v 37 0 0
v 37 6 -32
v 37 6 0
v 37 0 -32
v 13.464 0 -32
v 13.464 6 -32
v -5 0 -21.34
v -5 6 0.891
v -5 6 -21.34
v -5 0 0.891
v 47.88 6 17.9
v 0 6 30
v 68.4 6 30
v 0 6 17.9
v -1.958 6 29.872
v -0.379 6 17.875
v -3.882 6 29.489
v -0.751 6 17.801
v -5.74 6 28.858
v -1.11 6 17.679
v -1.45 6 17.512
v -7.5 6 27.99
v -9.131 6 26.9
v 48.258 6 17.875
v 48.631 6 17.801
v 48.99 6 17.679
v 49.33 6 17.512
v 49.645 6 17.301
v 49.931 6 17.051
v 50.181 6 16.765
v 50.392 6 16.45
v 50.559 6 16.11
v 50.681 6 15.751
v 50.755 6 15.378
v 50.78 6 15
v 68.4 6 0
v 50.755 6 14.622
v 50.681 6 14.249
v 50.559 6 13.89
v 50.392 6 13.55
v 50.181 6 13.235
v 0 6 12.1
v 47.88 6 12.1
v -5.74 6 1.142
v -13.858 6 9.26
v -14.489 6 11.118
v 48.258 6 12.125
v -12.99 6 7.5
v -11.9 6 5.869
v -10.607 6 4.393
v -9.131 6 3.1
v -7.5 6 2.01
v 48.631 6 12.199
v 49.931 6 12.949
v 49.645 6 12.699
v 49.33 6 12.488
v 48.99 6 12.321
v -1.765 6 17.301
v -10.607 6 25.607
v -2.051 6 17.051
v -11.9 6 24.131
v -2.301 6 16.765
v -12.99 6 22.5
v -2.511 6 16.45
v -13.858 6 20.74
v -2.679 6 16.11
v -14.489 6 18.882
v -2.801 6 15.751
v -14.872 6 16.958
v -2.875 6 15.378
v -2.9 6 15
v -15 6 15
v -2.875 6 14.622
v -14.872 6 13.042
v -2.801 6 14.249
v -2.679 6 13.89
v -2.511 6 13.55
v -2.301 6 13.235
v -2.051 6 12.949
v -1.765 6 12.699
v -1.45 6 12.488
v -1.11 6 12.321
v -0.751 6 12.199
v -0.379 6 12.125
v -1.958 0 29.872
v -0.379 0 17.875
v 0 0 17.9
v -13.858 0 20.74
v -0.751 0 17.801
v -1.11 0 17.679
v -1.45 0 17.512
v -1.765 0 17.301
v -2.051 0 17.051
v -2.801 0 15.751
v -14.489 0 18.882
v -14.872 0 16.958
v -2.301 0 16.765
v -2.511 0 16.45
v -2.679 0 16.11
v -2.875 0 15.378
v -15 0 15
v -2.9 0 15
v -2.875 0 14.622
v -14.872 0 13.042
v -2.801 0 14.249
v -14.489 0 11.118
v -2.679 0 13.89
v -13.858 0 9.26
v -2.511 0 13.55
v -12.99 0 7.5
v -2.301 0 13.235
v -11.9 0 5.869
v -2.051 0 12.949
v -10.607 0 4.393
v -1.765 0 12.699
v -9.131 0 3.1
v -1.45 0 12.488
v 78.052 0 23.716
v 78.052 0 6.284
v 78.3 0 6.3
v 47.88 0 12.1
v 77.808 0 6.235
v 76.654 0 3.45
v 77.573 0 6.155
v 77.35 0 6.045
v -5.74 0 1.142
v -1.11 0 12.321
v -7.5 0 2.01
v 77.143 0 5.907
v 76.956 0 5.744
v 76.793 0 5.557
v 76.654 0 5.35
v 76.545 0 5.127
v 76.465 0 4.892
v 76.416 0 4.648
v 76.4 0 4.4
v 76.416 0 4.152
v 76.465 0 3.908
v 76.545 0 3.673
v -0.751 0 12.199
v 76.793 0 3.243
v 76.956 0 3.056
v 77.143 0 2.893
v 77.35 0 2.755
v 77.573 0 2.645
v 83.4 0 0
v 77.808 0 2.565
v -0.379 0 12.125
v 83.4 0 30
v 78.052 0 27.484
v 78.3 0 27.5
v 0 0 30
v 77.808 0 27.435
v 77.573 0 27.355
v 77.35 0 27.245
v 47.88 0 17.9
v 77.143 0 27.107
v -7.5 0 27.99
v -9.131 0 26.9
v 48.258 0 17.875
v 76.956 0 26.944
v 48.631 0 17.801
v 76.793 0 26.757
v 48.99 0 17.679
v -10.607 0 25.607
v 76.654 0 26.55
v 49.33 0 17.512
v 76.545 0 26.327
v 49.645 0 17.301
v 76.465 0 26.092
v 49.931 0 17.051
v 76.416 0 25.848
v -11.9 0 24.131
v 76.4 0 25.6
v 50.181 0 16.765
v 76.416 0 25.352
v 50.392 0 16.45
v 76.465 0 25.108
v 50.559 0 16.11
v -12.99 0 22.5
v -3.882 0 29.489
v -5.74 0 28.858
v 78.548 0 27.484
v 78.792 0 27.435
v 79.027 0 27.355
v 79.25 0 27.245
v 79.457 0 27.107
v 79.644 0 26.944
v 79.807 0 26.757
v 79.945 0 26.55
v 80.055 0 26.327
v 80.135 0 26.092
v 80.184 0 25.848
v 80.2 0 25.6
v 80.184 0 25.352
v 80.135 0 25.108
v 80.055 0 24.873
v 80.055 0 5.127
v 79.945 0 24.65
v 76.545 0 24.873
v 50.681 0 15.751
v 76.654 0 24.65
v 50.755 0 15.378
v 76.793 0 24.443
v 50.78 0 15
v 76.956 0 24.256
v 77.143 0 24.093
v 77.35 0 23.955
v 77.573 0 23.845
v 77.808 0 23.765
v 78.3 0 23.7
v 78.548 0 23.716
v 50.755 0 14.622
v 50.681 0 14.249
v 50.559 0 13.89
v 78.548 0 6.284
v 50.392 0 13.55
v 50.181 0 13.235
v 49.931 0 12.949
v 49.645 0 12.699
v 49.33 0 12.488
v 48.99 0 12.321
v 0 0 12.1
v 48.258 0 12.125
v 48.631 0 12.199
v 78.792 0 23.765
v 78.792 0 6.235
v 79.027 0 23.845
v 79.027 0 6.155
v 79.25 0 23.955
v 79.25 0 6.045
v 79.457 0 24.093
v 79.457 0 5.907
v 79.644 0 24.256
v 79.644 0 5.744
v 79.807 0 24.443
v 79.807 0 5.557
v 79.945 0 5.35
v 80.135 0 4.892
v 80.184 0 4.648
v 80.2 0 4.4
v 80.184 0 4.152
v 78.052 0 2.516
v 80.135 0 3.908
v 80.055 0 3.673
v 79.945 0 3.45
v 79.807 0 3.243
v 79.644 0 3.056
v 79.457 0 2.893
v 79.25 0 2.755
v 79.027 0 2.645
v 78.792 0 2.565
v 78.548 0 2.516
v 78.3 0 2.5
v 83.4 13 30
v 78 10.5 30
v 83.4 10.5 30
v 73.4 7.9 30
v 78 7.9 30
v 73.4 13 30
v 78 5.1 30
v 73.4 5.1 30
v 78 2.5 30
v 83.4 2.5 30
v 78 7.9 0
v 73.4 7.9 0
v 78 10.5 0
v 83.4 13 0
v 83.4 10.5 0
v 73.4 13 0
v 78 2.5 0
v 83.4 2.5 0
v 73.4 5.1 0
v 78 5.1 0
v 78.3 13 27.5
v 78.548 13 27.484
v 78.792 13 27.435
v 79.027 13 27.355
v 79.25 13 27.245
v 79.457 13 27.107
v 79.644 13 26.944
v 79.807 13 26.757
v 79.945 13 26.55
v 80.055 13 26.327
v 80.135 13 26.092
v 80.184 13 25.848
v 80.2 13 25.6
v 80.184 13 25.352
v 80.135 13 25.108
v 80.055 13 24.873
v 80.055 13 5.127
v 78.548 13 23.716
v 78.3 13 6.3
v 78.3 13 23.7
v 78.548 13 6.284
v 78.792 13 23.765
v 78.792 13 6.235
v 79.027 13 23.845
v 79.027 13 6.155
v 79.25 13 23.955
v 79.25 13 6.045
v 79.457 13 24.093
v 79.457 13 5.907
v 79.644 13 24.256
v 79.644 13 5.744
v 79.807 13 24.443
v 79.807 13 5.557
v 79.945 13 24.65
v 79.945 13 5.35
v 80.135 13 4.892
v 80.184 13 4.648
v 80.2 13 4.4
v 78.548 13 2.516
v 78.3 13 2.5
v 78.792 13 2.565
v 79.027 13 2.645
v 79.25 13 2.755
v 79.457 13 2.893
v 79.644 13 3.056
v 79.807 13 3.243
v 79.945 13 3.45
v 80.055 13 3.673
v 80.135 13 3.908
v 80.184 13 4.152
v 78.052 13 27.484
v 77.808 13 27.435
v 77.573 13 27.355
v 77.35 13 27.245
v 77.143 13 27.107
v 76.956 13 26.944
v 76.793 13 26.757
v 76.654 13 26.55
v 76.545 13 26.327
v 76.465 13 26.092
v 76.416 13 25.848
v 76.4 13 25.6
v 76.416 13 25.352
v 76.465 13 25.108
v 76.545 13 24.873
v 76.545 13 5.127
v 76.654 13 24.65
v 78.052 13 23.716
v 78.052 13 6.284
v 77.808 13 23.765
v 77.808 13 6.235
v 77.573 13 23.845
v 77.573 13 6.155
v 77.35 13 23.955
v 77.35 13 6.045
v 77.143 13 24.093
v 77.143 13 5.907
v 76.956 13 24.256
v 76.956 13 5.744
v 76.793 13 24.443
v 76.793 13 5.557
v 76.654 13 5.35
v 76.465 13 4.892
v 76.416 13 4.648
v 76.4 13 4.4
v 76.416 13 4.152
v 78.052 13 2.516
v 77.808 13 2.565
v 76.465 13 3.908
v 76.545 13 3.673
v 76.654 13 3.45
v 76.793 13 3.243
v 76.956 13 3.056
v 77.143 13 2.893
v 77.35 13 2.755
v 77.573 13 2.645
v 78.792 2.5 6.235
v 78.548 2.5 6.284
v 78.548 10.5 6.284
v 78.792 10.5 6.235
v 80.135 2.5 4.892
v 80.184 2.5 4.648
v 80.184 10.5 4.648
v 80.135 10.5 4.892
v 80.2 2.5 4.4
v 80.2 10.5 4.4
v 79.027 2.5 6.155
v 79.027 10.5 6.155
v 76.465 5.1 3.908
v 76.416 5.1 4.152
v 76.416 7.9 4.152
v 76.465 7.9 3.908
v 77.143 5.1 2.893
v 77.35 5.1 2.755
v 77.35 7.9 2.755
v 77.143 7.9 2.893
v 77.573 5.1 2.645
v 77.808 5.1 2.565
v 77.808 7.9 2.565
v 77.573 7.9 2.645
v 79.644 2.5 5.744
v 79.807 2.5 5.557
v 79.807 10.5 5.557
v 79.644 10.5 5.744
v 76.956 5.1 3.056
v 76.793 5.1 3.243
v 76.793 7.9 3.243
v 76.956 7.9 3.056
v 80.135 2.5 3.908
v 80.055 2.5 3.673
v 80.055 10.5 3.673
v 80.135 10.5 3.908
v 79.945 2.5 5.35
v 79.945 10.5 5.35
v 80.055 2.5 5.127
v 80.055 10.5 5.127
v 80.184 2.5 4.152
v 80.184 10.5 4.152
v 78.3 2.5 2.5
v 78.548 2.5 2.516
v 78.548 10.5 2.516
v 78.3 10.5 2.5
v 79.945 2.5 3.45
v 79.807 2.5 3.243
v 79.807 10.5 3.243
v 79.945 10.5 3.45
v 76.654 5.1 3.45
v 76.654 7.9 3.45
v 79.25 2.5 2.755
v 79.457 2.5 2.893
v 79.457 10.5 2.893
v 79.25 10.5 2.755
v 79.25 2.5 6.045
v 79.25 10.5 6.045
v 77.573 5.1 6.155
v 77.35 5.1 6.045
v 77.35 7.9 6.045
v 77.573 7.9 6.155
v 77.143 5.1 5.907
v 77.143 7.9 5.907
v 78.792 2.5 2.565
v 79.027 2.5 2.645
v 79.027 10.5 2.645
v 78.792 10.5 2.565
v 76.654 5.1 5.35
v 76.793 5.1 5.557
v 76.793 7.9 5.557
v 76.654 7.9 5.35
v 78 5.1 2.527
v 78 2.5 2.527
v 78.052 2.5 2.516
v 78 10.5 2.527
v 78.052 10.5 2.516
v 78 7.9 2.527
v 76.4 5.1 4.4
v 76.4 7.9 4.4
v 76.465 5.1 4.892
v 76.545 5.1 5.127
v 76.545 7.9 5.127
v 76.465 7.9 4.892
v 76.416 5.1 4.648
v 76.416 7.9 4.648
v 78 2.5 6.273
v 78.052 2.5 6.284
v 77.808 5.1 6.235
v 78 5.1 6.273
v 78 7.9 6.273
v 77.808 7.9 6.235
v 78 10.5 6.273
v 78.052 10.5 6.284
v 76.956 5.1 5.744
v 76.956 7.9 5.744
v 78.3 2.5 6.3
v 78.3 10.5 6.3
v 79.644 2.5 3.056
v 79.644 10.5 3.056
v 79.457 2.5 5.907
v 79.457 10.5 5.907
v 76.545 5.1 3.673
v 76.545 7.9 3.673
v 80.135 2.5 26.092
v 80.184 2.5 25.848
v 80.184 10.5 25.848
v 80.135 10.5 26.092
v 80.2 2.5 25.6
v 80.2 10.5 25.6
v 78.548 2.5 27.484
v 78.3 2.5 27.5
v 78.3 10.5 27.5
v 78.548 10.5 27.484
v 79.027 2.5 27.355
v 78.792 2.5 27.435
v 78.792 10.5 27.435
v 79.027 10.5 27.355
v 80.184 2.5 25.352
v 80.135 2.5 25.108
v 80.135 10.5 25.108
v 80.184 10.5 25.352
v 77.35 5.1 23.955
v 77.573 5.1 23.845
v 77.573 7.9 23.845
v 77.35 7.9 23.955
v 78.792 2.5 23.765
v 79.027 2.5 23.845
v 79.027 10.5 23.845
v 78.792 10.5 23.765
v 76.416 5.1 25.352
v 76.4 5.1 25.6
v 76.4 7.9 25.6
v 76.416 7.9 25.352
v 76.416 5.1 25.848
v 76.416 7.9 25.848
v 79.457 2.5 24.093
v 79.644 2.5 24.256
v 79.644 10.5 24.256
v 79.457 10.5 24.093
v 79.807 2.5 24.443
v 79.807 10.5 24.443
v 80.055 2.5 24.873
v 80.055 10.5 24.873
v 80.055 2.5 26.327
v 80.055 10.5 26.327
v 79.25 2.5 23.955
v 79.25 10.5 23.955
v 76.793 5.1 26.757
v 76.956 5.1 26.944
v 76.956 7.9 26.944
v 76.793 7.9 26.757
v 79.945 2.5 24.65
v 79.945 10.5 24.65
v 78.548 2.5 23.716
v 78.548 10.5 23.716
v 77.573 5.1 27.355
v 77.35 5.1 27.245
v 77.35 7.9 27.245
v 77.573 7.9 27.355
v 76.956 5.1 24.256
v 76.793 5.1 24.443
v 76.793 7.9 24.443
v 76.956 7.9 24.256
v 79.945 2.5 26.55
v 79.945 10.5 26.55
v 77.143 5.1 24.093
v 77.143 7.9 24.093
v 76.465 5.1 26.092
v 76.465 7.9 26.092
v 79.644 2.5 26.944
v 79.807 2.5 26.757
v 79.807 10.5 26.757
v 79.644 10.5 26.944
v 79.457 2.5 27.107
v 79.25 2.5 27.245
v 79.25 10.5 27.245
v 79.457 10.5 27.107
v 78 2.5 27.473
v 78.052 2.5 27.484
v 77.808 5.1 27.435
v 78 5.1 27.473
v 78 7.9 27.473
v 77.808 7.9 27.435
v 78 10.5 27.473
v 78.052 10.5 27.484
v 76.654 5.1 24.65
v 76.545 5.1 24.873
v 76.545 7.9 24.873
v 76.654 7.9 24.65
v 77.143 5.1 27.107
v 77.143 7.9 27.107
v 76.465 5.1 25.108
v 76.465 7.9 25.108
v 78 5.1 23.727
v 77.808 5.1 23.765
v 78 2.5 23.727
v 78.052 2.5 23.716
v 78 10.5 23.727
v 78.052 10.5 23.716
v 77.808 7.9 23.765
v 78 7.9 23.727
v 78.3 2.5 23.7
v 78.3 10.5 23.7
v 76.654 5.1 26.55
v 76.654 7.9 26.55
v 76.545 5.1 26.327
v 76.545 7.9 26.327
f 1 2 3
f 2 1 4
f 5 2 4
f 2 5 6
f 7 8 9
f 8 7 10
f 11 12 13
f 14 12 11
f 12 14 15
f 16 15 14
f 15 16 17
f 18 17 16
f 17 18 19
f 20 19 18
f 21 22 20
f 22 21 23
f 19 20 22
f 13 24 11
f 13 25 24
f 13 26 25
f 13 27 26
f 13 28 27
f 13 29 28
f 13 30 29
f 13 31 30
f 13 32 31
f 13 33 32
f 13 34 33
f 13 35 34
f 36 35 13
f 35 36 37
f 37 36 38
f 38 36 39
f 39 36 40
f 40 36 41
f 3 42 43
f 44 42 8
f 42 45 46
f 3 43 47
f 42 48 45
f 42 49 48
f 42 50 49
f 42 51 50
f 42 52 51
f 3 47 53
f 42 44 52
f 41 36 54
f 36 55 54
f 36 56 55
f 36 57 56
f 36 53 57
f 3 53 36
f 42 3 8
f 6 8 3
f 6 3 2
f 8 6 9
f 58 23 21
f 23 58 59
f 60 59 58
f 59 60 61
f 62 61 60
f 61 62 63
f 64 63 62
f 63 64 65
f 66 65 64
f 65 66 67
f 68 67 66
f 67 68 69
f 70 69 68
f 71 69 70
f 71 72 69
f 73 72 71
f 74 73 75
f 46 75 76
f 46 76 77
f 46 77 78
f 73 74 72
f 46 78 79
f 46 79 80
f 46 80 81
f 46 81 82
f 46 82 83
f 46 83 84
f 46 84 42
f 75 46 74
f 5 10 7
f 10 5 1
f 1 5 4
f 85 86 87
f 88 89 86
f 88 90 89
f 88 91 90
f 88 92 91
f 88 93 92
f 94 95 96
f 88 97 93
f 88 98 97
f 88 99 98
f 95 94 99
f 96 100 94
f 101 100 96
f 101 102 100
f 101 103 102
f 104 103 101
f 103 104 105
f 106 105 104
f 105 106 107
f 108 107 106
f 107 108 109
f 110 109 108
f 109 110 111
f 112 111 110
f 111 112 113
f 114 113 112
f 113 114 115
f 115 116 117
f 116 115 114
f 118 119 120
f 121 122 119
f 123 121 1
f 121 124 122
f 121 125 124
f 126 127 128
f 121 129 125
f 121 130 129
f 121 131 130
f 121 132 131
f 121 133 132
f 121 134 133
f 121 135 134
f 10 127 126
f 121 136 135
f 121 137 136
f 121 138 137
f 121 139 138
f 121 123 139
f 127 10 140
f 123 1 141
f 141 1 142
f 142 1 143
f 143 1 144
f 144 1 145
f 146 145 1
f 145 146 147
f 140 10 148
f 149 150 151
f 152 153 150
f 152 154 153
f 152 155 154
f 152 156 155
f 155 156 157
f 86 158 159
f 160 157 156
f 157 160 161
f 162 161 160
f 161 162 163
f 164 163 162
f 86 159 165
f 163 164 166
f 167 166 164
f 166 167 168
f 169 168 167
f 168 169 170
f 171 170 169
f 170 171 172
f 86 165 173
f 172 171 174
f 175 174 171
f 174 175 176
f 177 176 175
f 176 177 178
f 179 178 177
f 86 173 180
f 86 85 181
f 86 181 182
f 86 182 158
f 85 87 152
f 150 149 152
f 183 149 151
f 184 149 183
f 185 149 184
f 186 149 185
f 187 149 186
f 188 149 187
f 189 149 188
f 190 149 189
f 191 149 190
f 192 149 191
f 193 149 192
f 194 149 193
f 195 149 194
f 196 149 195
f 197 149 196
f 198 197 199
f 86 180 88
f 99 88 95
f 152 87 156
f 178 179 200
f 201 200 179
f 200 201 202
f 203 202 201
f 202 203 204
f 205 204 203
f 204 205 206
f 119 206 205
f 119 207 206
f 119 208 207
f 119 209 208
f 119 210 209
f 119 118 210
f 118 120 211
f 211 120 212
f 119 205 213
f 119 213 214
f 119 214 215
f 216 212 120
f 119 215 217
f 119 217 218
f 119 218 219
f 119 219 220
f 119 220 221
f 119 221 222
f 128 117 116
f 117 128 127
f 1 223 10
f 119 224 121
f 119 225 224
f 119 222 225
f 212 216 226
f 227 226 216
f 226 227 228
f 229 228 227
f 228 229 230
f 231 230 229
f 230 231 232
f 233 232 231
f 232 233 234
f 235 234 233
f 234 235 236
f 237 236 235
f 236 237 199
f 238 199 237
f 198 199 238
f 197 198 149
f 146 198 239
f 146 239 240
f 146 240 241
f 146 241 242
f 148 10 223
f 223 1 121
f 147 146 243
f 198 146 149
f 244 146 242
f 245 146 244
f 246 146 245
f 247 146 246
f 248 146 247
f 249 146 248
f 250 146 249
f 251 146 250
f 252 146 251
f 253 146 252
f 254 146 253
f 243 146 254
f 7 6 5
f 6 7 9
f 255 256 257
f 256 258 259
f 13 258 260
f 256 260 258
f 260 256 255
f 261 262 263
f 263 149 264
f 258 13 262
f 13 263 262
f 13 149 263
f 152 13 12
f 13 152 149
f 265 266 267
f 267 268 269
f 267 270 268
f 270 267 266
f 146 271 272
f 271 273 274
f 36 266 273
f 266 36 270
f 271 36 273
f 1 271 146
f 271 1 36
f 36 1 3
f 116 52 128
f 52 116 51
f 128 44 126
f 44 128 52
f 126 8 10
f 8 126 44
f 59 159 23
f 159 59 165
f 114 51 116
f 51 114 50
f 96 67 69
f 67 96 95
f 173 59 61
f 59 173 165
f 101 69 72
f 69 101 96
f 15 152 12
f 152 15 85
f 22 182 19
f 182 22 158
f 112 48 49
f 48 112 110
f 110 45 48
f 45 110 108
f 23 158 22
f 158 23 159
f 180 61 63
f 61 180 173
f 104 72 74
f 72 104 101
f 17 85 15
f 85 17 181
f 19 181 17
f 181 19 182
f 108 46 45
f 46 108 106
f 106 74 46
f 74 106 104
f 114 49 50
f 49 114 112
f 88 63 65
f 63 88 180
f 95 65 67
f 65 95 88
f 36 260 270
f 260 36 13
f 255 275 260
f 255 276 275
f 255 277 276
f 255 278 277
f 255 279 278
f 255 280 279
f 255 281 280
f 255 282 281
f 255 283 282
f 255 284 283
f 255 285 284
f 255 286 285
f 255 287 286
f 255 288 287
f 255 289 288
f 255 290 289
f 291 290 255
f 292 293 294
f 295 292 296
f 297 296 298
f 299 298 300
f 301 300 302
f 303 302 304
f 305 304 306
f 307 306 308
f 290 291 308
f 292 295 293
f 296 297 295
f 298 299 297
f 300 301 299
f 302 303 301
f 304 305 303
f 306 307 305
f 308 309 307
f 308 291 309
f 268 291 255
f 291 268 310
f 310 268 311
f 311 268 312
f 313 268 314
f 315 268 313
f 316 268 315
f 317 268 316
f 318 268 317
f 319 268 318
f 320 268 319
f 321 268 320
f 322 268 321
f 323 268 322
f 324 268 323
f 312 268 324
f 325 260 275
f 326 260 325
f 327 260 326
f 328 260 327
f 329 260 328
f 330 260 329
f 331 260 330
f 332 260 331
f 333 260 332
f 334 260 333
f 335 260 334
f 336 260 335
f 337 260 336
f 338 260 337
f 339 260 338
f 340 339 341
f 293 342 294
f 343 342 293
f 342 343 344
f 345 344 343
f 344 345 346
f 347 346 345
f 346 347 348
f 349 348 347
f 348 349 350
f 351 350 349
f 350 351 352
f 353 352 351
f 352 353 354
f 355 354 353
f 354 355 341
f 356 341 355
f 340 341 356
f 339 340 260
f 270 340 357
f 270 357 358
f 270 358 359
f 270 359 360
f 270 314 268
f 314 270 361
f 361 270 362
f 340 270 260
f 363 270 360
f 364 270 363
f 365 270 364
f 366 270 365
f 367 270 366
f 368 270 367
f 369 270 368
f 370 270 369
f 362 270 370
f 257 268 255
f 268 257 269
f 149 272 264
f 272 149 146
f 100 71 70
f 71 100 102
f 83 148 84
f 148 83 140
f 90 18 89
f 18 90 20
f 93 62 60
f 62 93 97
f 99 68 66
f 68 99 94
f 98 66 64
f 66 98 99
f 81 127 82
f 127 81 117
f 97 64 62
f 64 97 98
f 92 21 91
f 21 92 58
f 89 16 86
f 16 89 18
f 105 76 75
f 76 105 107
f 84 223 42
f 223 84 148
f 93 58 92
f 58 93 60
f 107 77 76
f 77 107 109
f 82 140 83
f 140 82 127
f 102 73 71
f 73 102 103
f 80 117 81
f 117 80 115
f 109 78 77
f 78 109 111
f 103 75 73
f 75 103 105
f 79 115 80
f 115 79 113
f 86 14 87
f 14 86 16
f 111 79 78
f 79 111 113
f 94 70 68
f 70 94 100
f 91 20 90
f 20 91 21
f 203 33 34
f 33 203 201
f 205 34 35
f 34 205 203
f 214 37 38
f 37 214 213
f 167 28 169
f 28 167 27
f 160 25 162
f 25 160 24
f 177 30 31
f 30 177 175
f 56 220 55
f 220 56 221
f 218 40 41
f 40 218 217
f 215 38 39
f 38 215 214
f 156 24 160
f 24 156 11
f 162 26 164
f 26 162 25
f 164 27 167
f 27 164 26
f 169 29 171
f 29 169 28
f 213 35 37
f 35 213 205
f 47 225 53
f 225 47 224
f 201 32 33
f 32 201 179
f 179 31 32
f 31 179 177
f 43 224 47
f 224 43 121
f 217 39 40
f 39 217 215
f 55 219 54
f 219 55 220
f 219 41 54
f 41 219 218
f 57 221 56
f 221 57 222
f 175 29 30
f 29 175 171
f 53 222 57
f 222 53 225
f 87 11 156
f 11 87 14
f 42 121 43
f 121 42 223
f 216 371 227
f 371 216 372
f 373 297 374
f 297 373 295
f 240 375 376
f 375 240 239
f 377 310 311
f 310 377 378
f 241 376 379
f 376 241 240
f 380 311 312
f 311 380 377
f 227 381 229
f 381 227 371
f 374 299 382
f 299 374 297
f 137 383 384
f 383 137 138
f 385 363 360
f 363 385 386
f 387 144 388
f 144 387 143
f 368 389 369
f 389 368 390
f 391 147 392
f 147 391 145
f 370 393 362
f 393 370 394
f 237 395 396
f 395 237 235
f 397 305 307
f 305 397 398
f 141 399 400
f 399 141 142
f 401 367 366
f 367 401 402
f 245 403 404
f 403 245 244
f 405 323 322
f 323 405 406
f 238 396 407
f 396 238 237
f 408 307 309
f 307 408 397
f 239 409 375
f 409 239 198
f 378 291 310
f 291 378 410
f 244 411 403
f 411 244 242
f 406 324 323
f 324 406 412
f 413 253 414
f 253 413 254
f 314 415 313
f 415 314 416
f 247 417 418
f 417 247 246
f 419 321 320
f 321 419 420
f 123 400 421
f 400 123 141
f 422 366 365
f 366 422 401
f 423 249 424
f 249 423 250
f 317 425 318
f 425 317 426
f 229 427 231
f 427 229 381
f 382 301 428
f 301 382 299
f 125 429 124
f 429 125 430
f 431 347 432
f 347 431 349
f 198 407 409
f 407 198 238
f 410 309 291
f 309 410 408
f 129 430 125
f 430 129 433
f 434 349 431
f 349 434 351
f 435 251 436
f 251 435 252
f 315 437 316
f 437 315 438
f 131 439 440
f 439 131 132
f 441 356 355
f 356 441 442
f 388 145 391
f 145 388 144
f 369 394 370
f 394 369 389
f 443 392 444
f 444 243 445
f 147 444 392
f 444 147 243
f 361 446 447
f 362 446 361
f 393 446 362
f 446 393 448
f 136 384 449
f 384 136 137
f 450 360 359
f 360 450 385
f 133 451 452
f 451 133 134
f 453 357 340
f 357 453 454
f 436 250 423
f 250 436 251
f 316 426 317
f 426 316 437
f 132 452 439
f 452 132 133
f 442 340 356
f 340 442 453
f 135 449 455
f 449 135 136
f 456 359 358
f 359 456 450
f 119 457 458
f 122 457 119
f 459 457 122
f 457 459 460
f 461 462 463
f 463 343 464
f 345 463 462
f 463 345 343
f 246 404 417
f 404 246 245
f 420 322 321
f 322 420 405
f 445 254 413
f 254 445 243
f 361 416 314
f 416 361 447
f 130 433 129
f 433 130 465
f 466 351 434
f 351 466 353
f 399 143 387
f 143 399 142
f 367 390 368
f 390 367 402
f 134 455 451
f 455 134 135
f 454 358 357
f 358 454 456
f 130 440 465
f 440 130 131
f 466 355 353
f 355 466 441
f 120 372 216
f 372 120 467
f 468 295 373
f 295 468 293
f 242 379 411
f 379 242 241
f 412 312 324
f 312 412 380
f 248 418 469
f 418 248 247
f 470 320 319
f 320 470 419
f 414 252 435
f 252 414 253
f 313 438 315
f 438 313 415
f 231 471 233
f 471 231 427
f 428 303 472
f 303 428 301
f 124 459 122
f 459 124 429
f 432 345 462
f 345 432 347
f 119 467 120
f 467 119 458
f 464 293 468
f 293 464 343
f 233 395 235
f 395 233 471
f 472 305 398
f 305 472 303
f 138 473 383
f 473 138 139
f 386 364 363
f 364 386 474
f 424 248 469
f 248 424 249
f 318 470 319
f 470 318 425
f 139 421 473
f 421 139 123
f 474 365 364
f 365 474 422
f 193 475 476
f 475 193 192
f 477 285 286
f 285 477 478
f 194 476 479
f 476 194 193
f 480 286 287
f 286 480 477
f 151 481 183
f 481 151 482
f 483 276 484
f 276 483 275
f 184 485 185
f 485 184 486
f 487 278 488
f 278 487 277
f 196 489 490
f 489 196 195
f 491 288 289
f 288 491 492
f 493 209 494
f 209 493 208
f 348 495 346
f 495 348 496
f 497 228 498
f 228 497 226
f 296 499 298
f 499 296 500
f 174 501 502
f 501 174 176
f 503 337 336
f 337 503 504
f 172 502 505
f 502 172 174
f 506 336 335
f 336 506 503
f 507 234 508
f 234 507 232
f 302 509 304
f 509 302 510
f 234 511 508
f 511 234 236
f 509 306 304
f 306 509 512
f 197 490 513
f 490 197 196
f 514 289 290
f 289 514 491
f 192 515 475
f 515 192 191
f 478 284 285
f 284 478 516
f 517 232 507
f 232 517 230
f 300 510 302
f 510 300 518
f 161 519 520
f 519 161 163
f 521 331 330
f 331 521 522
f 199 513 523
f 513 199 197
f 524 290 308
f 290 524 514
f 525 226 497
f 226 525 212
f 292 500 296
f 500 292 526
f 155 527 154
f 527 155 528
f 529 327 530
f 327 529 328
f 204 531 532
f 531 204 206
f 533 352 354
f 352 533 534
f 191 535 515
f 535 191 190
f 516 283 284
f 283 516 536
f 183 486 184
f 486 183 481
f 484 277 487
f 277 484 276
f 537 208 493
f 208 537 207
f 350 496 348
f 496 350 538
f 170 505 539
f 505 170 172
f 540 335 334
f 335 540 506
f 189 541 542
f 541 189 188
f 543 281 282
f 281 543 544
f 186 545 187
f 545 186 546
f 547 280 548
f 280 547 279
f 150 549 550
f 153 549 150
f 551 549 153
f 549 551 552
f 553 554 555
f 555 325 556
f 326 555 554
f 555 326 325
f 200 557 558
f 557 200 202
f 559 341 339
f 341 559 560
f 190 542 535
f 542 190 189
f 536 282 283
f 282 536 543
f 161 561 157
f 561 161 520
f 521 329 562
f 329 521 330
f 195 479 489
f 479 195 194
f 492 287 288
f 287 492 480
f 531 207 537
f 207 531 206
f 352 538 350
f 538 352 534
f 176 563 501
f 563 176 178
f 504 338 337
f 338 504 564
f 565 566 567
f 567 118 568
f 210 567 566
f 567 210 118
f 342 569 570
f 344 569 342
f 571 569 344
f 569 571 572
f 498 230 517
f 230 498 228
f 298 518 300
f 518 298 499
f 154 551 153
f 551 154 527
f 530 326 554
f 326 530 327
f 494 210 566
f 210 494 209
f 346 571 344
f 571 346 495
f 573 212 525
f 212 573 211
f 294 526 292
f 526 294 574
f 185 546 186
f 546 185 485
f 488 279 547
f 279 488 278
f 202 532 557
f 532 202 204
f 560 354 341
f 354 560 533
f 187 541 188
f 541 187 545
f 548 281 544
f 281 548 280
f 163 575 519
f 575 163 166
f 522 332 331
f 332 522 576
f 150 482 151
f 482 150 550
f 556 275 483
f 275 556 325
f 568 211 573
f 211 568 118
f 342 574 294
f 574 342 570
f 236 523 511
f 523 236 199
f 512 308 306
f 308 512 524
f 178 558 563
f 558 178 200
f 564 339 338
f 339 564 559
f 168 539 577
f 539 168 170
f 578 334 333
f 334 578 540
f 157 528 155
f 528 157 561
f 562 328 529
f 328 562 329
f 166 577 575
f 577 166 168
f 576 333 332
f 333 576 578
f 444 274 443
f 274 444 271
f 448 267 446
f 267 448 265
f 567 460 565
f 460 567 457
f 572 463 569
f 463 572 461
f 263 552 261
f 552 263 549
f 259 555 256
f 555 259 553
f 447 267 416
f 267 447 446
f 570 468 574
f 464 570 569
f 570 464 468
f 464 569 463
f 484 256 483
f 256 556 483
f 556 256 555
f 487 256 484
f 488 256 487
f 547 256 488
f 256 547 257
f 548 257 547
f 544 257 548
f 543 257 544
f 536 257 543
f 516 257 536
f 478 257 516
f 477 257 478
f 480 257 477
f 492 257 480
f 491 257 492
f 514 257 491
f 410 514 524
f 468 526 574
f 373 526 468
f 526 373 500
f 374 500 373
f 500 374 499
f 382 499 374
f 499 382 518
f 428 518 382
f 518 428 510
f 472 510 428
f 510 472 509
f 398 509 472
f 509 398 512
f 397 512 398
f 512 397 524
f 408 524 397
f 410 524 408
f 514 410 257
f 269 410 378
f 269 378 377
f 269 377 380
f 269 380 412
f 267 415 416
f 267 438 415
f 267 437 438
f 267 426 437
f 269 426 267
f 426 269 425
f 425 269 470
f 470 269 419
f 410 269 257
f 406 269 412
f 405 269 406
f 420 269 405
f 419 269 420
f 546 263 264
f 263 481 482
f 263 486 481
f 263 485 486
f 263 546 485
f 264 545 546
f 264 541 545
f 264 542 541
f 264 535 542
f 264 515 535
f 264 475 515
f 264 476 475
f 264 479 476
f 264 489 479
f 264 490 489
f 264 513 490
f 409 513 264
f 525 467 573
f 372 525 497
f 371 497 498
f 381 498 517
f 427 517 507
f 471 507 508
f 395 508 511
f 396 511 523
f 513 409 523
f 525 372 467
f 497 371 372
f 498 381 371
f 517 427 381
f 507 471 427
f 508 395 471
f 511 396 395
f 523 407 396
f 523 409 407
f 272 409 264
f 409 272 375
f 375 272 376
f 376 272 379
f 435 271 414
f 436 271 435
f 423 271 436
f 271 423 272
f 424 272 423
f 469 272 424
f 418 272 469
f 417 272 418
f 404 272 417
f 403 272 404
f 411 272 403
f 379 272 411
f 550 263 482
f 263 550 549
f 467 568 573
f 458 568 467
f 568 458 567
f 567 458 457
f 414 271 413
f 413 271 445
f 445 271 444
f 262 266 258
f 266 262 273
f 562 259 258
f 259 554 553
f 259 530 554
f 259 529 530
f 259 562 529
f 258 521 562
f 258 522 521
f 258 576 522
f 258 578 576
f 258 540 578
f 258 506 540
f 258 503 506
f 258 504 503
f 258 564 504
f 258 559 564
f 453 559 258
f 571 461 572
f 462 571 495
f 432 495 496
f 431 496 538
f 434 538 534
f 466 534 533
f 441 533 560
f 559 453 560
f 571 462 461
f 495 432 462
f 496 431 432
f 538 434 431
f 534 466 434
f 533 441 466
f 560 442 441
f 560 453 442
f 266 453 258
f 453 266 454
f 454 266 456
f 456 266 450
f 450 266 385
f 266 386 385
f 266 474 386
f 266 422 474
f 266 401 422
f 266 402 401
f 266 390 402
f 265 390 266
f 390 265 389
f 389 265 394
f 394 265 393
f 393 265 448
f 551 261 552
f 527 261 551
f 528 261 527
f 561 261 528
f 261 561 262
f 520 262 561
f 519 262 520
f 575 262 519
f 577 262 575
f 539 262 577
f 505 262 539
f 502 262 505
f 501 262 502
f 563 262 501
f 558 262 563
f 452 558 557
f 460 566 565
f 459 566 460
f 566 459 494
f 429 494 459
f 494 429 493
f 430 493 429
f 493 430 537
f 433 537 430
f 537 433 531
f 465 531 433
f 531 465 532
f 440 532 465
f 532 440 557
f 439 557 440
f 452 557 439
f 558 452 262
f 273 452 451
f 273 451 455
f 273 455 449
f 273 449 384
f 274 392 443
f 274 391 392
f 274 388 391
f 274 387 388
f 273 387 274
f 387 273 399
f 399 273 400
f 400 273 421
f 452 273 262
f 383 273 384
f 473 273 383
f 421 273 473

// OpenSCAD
// All dimensions are in millimeters

$fn = 48;
printgap = 0.4; // filament printing offset

// Parameters here
weld_conn_height = 15;
weld_con_diam = 43;

thick = 6;
height = 30;
length = 90*0.76;
r_hole = (5/2) + printgap; // screw size for distance adjustment slot

loop_connect_thick = 13;
wedge_len = 5;
loop_connect_len = 10;
connect_gap = 2.1+printgap+0.3; // gap between HMD steel loops
hmd_wedge = [[length, 0], [length+wedge_len, 0], [length+wedge_len+1, 0], [length+wedge_len+1, loop_connect_thick], [length+wedge_len, loop_connect_thick], [length, thick]];

screwholes = (3/2)+printgap; // screw size for connection through steel loops on HMD

looprod_diam = (2/2); // thickness of steel loop rods
screw_edgespacing = 5; // 5mm from edge closest to loop
looprod_inside_gap = 4; // for placing screw holes centered

endwiden = looprod_diam+looprod_inside_gap+printgap;

module adjustmentbar(){
	cube([length,thick,height]);
		translate([0,(thick/2),height/2]){
			rotate(90,[1,0,0]){
				cylinder(thick, height/2, height/2,true); // height, bottom radius, top r
			}
		}
}
module extruded_polywedge(){
	linear_extrude(height=height, center=false, convexity=1){
		polygon(points=hmd_wedge, convexity=1);
	}
}
// slot for HMD distance adjustment
module adjust_slot(length, maxdist){
	translate([0,thick/2,height/2]){
		rotate(90,[1,0,0]){
			cylinder(thick*20, r_hole, r_hole, true);
		}
	}
	translate([maxdist*length,thick/2,height/2]){
		rotate(90,[1,0,0]){
			cylinder(thick*20, r_hole, r_hole, true);
		}
	}
	translate([0,-thick/2,(height/2)-r_hole]){
		cube([maxdist*length, thick*2, r_hole*2]);
	}
}
module hmd_fork_connect(){
	translate([length+wedge_len, 0, 0]){
		cube([loop_connect_len, loop_connect_thick, height]); // length of wedge end mount
	}
}
module screw_holes(screw_diam, total_height){
	rotate(90,[1,0,0]){
		cylinder(total_height+10, screw_diam, screw_diam, true);
	}
}
module screw_array(){
	translate([(length+wedge_len+screwholes+looprod_diam+(looprod_inside_gap/2)), loop_connect_thick/2, screwholes+(screw_edgespacing/2)]){
		screw_holes(screw_diam=screwholes, total_height=loop_connect_thick);
		translate([0,0,height-((screwholes*2)+screw_edgespacing)]){
			screw_holes(screw_diam=screwholes, total_height=loop_connect_thick);
		}
	}
}
module weldmount_bracket(){
	translate([0,(thick/2)-1.4,height/2]){
		rotate(90,[1,0,0]){
			cylinder(weld_conn_height, weld_con_diam, weld_con_diam, true);
		}
	}
}
module endjointgap(){
	translate([(length+wedge_len+loop_connect_len-(endwiden)), (loop_connect_thick/2)+(-8/2), -5]){
		cube([endwiden+10, 8, height+10]);
	}
	translate([length+wedge_len, (loop_connect_thick/2)+(-connect_gap/2), -5/2]){
		cube([loop_connect_len+5, connect_gap, height+5]); // 4mm gap in loop, loop rod diameter 2mm
	}
}

// not in use
angledmount_len = 40 + height/2;
minkow_r = 3;

module koss_slider(){
	rotate(-30,[0,1,0]){ //-30
		translate([-angledmount_len,minkow_r/2,0]){
			minkowski(){
				rotate(90,[1,0,0]){
					cylinder(r=minkow_r,h=thick/2, center=true);
				}
				cube([angledmount_len, thick - minkow_r, height - minkow_r]);
			}
		}
	}
}

//headphone support wedge
supportwedge = [[0,0], [0, thick], [20, thick]];

// in use thus far
module headphonemount(){	
	difference(){
		difference(){
			translate([-height+25, 0,-32]){
				cube([height+20-5 - minkow_r, thick, 32+6.5 - minkow_r]);
			}
			translate([-20,-6,0]){
				rotate(52,[1,0,0]){
					cube([100,20,20]);
				}
			}
		}
		translate([-30, -10, -30]){
			rotate(30, [0,1,0]){
				cube([49,20,20]);
			}
		}
	}
}

// HMD mount
union(){
	headphonemount();
	difference(){
		difference(){
			union(){
				difference(){
					union(){
						adjustmentbar();
						extruded_polywedge();
						hmd_fork_connect();
					}
					adjust_slot(0.7, length);
				}
			}
			screw_array();
		}
		endjointgap();
	}
}
